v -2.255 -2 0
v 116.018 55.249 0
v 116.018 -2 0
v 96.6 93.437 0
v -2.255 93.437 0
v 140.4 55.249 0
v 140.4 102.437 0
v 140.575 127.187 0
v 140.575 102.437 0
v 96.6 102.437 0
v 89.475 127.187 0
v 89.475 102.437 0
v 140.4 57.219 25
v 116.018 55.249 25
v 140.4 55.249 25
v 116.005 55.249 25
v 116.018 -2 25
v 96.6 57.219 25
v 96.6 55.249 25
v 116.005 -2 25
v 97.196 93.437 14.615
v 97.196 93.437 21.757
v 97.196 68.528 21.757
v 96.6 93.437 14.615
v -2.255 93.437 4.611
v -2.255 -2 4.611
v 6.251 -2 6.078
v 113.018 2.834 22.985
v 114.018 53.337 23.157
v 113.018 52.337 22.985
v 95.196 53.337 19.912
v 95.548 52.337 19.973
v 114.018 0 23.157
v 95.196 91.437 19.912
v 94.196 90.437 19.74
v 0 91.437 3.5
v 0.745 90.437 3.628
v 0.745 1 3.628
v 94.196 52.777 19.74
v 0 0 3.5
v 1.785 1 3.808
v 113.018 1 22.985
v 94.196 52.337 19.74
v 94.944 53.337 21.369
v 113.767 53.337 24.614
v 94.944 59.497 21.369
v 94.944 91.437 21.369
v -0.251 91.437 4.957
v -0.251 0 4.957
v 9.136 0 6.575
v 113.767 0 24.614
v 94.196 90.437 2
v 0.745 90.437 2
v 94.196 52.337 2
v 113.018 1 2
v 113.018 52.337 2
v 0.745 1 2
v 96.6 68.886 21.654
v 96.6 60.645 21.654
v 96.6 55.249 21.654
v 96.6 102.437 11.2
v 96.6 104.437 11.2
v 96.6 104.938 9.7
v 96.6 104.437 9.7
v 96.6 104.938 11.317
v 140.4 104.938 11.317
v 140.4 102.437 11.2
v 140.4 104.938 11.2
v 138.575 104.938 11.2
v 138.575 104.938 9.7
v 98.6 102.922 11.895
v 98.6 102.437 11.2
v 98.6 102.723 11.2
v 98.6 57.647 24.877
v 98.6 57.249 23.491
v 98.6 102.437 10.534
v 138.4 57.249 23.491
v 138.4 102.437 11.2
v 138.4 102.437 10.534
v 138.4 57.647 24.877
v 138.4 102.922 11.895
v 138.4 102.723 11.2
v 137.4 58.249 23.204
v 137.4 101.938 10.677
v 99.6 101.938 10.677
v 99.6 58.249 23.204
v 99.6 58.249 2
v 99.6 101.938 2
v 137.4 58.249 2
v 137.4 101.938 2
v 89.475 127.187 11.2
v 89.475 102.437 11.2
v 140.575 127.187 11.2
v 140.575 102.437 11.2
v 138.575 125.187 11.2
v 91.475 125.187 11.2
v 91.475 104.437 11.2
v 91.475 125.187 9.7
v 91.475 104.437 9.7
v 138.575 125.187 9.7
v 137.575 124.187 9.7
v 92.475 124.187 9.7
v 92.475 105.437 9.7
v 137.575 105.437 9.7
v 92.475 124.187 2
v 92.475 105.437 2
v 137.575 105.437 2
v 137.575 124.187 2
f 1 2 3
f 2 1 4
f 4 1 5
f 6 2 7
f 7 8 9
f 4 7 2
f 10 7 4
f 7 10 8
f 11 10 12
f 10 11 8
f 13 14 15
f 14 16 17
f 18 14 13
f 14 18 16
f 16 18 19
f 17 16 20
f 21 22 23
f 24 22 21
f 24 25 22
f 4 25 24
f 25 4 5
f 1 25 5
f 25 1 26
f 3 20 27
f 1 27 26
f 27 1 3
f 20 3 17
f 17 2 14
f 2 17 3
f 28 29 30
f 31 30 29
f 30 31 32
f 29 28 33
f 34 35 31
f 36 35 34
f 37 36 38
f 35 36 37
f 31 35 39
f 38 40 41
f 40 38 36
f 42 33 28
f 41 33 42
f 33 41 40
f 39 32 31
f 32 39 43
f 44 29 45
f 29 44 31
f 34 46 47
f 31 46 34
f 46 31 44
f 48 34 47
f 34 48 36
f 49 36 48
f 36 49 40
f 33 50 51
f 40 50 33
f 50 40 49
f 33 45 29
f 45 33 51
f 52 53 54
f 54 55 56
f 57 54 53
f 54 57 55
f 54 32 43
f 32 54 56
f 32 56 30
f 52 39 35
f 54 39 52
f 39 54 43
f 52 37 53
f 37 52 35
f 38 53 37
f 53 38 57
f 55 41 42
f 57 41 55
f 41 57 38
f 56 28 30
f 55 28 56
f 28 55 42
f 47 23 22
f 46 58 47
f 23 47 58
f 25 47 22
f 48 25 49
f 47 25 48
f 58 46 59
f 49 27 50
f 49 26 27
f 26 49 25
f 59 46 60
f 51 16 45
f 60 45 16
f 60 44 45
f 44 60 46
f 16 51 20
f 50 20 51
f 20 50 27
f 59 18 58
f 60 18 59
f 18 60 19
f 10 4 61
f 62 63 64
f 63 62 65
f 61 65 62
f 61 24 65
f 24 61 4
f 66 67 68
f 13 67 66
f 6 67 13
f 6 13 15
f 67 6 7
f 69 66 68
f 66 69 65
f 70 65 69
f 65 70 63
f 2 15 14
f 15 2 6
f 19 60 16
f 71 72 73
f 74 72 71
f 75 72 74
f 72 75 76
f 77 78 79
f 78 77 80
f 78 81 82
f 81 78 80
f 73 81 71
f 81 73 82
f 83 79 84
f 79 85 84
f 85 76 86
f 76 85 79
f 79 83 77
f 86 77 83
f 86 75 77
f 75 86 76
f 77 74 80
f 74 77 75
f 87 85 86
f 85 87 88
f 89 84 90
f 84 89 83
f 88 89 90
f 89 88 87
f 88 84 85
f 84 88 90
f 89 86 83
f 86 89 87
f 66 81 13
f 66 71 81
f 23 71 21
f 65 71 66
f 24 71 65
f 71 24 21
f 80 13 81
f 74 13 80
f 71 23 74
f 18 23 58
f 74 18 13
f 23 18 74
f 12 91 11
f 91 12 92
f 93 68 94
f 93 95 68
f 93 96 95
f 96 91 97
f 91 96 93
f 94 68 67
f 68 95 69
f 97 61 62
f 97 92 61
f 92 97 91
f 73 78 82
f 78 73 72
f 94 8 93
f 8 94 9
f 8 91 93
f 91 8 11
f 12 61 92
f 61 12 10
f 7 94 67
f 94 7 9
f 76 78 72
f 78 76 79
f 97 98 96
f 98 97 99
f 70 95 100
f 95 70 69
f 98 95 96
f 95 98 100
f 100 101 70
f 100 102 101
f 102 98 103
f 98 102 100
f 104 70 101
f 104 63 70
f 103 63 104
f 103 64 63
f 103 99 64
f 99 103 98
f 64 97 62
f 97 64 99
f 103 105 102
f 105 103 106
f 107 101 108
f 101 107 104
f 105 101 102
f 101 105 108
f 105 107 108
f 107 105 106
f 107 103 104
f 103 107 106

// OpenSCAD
PLATE_H = 91.437;
PLATE_TH = 53.337;
PLATE_BH = 38.1;
PLATE_W = 115.7;
PLATE_LW = 19.1;
PLATE_RW = 96.6;
PLATE_THICKNESS = 1.5;

SPLATE_H = 47.1;
SPLATE_W = 20.75;

TPLATE_H = 47.1;
TPLATE_W = 39.8;
TPLATE_ANGLE = 16;
TPLATE_ZANGLE = 45;

CASE_H = 25;
CASE_SH = 5;
CASE_BOTTOM_H = 2;
CASE_OUTER_BORDER = 2;
CASE_INNER_BORDER = 1;
CASEHS = CASE_H - 8;


points = [[0,0], [0,PLATE_H], [PLATE_RW,PLATE_H], [PLATE_RW,PLATE_TH], [PLATE_W,PLATE_TH], [PLATE_W, 0] ];


module plate(thickness=PLATE_THICKNESS, offset=0) {
    rotate([0, -9.782, 0]) {
        linear_extrude(height=thickness, twist=0)
        offset(delta = offset) {
            polygon(points);
        }
    }
}

module plateproj() {
    projection(cut=false) {
        plate();
    }
}

module tplate() {
    rotate([-TPLATE_ANGLE, 0, 0]) {
        translate ([-TPLATE_W/2, -TPLATE_H/2, 0]) {
            cube([TPLATE_W, TPLATE_H, PLATE_THICKNESS]);
        }
    }
}

module tplateproj() {
    projection(cut=false) {
        tplate();
    }
}
    
// Main body
difference() {

    // Case
    color([1,0,0])
    linear_extrude(height=CASE_H, twist=0)
    offset(delta = CASE_OUTER_BORDER) {
        plateproj();
    }
    
    // Plate
    color([0,1,0])
    translate ([0, 0, CASE_SH-PLATE_THICKNESS]) {
        plate();
    }
    
    // Depth
    color([0,0,1])
    translate ([0, 0, CASE_BOTTOM_H]) {
        linear_extrude(height=CASE_H - CASE_BOTTOM_H, twist=0)
        offset(delta = -CASE_INNER_BORDER) {
            plateproj();
        }
    }
    
    // Cut
    color([0,0.5,0.5])
    translate ([0, 0, CASE_SH]) {
        plate(30, 20);
    }
}


// Thumb cluster
translate ([PLATE_RW+TPLATE_W/2+2, PLATE_TH+SPLATE_H/2+3, 0]) {
    difference() {
        
        // Case
        color([1,0,0])
        linear_extrude(height=CASE_H, twist=0)
        offset(delta = CASE_OUTER_BORDER) {
            tplateproj();
        }
        
        // Plate
        color([0,1,0])
        translate ([0, 0, CASEHS]) {
            tplate();
        }
        
        // Depth
        color([0,0,1])
        translate ([0, 0, CASE_BOTTOM_H]) {
            linear_extrude(height=CASE_H - CASE_BOTTOM_H, twist=0)
            offset(delta = -CASE_INNER_BORDER) {
                tplateproj();
            }
        }
        
        // Cut
        color([0,0.5,0.5])
        translate ([0, 0, CASEHS + PLATE_THICKNESS]) {
            rotate([-TPLATE_ANGLE, 0, 0]) {
                translate ([-50, -50, 0]) {
                    cube([100, 100, 50]);
                }
            }
        }
    }
}

// Single key
translate ([PLATE_RW+SPLATE_W/2-15.5, PLATE_TH+SPLATE_H/2+SPLATE_H/2+4, 0]) {
    difference() {
        
        // Case
        color([1,0,0])
        translate ([-CASE_OUTER_BORDER, -CASE_OUTER_BORDER, 0]) {
            cube([SPLATE_H+CASE_OUTER_BORDER*2, SPLATE_W+CASE_OUTER_BORDER*2, 11.2]);
        }
        
        // Plate
        color([0,1,0])
        translate ([0, 0, 11.2-PLATE_THICKNESS]) {
            cube([SPLATE_H, SPLATE_W, PLATE_THICKNESS]);
        }
        
        // Depth
        color([0,0,1])
        translate ([CASE_INNER_BORDER, CASE_INNER_BORDER, CASE_BOTTOM_H]) {
            cube([SPLATE_H-CASE_INNER_BORDER*2, SPLATE_W-CASE_INNER_BORDER*2, 11.2]);
        }

    }
}
